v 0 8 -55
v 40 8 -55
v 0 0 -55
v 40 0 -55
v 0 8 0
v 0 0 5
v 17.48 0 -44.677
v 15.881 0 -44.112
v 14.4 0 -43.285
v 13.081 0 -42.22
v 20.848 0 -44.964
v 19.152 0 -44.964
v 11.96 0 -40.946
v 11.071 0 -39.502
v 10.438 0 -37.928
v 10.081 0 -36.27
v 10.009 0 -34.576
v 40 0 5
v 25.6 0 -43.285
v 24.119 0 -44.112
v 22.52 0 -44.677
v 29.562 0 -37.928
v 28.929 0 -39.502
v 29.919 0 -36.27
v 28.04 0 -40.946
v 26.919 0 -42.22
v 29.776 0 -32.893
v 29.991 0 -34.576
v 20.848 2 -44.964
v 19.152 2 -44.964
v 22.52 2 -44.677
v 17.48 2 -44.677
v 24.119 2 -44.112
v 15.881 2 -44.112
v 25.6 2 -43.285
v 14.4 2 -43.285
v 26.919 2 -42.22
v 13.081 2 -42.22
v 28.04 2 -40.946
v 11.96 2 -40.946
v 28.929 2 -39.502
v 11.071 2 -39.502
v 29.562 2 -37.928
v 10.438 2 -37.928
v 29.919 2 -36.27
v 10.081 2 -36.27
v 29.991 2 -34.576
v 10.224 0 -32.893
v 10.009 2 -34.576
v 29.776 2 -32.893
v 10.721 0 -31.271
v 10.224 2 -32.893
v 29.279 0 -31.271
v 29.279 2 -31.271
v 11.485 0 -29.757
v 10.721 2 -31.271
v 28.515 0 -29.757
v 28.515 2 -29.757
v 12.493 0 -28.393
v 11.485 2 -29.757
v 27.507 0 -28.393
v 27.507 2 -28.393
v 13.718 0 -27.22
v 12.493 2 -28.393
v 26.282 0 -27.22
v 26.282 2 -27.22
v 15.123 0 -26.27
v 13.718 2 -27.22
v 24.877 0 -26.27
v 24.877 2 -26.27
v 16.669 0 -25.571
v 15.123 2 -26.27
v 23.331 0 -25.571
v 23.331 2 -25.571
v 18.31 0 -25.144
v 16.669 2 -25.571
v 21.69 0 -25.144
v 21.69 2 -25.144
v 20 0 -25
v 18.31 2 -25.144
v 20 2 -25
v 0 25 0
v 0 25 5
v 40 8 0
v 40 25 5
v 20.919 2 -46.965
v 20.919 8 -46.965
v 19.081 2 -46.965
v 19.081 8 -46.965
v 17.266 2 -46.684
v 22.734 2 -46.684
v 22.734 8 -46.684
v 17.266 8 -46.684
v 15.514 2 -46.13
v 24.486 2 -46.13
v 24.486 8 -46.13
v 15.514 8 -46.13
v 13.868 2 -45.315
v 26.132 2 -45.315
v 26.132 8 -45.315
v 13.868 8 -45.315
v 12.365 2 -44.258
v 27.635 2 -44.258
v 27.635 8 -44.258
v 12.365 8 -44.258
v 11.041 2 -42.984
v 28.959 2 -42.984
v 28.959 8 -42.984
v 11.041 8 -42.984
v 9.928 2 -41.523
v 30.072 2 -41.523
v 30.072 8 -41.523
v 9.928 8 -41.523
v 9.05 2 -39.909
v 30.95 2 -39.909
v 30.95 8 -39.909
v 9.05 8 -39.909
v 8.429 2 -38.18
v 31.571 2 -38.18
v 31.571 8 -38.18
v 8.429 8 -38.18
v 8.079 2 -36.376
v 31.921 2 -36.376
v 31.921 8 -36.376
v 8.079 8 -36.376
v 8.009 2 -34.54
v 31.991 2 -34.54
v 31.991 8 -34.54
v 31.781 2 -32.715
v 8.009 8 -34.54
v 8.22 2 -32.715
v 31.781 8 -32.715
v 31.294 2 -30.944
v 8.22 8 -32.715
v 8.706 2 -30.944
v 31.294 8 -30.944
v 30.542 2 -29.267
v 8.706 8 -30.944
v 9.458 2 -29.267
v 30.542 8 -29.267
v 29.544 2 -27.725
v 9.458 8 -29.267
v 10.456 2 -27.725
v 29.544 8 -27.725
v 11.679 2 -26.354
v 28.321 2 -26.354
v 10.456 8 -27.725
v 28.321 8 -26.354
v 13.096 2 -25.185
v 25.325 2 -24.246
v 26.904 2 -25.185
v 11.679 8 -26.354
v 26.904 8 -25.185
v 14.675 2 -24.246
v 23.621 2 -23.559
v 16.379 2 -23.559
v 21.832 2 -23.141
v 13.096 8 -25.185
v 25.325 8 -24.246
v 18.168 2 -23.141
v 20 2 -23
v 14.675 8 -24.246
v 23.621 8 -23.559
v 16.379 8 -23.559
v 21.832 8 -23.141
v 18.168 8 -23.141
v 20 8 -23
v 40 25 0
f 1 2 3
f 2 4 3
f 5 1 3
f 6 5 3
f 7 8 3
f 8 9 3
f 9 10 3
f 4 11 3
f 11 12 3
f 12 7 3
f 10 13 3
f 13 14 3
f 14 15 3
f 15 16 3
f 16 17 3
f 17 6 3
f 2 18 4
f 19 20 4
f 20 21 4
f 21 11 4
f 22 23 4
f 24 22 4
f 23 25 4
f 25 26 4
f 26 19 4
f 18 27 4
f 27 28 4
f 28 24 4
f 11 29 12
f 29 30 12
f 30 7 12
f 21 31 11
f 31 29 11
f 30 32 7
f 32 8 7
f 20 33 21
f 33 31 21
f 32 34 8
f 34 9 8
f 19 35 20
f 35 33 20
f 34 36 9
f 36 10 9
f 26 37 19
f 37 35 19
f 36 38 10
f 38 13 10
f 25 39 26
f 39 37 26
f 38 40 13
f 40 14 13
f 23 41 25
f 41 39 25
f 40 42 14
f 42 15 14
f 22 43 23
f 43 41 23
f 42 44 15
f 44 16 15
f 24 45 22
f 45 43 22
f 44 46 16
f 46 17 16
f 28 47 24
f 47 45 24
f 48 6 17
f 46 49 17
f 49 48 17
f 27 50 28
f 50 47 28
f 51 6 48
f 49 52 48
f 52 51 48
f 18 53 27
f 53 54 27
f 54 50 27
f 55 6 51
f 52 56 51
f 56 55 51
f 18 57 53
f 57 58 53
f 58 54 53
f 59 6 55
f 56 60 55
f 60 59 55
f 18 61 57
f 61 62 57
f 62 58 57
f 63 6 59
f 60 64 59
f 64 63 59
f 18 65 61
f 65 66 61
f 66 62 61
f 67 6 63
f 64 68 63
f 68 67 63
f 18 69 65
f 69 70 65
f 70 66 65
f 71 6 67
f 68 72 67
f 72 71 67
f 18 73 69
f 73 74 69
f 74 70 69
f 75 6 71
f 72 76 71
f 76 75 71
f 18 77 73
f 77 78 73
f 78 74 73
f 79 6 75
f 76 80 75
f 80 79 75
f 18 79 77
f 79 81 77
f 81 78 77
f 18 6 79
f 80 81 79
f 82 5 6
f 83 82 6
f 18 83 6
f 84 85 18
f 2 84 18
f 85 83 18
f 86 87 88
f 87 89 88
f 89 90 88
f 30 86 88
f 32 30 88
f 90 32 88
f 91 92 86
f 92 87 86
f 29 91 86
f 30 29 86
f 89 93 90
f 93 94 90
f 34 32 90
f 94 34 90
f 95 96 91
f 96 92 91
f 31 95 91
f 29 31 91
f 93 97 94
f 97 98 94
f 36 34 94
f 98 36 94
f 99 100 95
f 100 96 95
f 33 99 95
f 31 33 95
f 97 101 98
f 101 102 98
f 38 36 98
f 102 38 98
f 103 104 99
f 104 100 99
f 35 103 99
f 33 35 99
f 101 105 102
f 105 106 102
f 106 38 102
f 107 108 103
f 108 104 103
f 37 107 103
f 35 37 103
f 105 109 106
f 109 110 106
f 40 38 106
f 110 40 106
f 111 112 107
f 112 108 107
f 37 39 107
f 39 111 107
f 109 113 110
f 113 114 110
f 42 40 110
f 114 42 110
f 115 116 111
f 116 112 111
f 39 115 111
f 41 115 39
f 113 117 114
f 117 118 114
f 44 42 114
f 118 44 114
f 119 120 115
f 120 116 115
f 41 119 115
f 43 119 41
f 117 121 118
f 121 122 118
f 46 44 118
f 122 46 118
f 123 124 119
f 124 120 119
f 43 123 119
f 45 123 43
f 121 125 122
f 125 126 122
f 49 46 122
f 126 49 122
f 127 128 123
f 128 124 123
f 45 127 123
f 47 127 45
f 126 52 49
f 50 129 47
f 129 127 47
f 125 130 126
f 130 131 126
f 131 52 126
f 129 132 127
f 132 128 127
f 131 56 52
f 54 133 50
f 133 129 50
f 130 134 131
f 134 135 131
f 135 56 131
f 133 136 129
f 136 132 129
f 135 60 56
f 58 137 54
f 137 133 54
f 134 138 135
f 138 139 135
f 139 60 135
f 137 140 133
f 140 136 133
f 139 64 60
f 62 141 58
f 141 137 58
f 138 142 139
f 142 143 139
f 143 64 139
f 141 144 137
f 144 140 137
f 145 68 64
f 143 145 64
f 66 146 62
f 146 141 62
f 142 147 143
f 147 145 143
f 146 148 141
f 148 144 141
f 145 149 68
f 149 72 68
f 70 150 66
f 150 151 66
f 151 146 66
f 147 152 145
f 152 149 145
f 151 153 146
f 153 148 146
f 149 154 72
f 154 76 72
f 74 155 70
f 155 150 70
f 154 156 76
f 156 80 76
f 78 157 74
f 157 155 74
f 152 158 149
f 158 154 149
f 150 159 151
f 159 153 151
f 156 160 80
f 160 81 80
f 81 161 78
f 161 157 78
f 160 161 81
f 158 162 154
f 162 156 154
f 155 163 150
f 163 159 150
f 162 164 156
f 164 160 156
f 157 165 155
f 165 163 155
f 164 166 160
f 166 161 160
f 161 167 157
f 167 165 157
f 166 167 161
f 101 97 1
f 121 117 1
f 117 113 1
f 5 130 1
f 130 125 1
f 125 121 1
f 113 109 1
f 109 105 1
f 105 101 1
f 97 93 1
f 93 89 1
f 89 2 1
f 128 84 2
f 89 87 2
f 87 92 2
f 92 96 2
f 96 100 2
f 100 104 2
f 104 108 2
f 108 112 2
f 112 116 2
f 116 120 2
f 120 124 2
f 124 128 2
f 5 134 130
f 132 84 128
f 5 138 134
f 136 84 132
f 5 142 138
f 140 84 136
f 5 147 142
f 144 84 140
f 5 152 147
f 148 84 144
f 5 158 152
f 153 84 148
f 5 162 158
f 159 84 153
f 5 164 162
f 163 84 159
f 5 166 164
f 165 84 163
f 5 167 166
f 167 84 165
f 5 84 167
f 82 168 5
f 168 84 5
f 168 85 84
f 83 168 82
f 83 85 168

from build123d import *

# Parameters (mm, degrees)
SKETCH1_W           = 40
SKETCH1_H           = 55
BOSS_EXTRUDE1_DEPTH = 8
SKETCH1_3_W         = 40
SKETCH1_3_H         = 5
BOSS_EXTRUDE2_DEPTH = 25
SKETCH2_R           = 12
CUT_EXTRUDE1_DEPTH  = 6
CUT_EXTRUDE2_START  = -6
SKETCH2_3_R         = 10
CUT_EXTRUDE2_DEPTH  = 2


with BuildPart() as part:
    # Sketch1 → Boss-Extrude1 (new body)
    with BuildSketch(Plane(origin=(0, 0, 0), x_dir=(1, 0, 0), z_dir=(0, 1, 0))):
        with Locations((20, 27.5)):
            Rectangle(SKETCH1_W, SKETCH1_H)
    extrude(amount=BOSS_EXTRUDE1_DEPTH)

    # Sketch1<3> → Boss-Extrude2 (add)
    with BuildSketch(Plane(origin=(0, 0, 0), x_dir=(1, 0, 0), z_dir=(0, 1, 0))):
        with Locations((20, -2.5)):
            Rectangle(SKETCH1_3_W, SKETCH1_3_H)
    extrude(amount=BOSS_EXTRUDE2_DEPTH)

    # Sketch2 → Cut-Extrude1 (cut)
    with BuildSketch(Plane(origin=(0, 8, 0), x_dir=(1, 0, 0), z_dir=(0, 1, 0))):
        with Locations((20, 35)):
            Circle(SKETCH2_R)
    extrude(amount=-CUT_EXTRUDE1_DEPTH, mode=Mode.SUBTRACT)

    # Sketch2<3> → Cut-Extrude2 (cut)
    with BuildSketch(Plane(origin=(0, 8, 0), x_dir=(1, 0, 0), z_dir=(0, 1, 0)).offset(CUT_EXTRUDE2_START)):
        with Locations((20, 35)):
            Circle(SKETCH2_3_R)
    extrude(amount=-CUT_EXTRUDE2_DEPTH, mode=Mode.SUBTRACT)


solid = part.part
